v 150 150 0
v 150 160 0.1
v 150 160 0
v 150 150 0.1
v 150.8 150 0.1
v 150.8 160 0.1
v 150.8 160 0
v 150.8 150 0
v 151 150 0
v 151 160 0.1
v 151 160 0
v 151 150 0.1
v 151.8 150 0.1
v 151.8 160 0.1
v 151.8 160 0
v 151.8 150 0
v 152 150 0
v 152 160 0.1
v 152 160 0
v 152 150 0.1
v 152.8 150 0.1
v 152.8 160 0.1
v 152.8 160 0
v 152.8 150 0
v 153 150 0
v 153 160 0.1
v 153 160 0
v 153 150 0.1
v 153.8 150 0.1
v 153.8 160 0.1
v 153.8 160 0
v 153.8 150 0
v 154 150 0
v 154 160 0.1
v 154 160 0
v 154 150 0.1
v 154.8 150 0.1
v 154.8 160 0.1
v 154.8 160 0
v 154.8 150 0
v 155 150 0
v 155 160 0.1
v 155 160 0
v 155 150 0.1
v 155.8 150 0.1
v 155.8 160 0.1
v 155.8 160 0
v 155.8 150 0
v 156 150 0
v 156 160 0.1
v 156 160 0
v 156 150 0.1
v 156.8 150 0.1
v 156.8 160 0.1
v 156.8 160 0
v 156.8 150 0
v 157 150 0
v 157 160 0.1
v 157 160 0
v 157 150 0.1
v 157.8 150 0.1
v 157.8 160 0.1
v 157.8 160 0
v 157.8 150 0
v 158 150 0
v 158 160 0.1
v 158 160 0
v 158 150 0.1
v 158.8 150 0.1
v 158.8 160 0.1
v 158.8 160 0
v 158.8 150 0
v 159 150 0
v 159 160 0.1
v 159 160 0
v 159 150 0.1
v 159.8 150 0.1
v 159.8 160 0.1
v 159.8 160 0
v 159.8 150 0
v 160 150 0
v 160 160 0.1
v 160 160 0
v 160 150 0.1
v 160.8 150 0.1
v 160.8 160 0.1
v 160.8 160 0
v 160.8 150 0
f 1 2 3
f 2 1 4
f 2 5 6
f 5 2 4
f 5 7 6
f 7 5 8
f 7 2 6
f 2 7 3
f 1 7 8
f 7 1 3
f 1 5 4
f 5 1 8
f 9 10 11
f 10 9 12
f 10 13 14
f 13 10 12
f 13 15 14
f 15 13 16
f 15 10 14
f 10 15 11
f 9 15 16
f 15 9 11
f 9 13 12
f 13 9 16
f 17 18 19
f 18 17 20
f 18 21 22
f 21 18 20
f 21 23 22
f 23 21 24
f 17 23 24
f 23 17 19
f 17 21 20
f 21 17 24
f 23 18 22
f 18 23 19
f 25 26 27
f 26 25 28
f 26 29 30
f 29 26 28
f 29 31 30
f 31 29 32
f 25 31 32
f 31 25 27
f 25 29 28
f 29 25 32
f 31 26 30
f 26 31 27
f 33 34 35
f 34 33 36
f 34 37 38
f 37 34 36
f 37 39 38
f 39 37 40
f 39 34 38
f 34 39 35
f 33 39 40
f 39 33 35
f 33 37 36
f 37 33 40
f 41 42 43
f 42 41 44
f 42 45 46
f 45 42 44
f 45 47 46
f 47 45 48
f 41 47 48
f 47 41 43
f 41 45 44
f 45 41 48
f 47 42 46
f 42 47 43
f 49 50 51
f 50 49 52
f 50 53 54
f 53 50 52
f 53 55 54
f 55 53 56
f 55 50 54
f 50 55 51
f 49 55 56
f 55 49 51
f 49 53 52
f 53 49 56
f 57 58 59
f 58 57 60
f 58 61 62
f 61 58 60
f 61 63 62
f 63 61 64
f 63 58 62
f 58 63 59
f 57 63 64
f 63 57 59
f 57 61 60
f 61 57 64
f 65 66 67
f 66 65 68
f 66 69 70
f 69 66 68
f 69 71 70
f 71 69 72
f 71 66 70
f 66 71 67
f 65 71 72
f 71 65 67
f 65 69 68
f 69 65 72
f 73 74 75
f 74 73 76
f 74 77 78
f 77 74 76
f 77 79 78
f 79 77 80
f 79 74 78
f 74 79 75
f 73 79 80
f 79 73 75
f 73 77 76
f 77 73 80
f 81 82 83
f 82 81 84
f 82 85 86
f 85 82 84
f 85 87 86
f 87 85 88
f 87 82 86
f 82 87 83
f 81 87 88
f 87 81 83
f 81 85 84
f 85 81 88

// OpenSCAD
translate([10+140,10+140,0])
        for (i = [0 : 10]){
            translate([i,0,0])
                cube(size = [0.8,10,0.1]);
    }
